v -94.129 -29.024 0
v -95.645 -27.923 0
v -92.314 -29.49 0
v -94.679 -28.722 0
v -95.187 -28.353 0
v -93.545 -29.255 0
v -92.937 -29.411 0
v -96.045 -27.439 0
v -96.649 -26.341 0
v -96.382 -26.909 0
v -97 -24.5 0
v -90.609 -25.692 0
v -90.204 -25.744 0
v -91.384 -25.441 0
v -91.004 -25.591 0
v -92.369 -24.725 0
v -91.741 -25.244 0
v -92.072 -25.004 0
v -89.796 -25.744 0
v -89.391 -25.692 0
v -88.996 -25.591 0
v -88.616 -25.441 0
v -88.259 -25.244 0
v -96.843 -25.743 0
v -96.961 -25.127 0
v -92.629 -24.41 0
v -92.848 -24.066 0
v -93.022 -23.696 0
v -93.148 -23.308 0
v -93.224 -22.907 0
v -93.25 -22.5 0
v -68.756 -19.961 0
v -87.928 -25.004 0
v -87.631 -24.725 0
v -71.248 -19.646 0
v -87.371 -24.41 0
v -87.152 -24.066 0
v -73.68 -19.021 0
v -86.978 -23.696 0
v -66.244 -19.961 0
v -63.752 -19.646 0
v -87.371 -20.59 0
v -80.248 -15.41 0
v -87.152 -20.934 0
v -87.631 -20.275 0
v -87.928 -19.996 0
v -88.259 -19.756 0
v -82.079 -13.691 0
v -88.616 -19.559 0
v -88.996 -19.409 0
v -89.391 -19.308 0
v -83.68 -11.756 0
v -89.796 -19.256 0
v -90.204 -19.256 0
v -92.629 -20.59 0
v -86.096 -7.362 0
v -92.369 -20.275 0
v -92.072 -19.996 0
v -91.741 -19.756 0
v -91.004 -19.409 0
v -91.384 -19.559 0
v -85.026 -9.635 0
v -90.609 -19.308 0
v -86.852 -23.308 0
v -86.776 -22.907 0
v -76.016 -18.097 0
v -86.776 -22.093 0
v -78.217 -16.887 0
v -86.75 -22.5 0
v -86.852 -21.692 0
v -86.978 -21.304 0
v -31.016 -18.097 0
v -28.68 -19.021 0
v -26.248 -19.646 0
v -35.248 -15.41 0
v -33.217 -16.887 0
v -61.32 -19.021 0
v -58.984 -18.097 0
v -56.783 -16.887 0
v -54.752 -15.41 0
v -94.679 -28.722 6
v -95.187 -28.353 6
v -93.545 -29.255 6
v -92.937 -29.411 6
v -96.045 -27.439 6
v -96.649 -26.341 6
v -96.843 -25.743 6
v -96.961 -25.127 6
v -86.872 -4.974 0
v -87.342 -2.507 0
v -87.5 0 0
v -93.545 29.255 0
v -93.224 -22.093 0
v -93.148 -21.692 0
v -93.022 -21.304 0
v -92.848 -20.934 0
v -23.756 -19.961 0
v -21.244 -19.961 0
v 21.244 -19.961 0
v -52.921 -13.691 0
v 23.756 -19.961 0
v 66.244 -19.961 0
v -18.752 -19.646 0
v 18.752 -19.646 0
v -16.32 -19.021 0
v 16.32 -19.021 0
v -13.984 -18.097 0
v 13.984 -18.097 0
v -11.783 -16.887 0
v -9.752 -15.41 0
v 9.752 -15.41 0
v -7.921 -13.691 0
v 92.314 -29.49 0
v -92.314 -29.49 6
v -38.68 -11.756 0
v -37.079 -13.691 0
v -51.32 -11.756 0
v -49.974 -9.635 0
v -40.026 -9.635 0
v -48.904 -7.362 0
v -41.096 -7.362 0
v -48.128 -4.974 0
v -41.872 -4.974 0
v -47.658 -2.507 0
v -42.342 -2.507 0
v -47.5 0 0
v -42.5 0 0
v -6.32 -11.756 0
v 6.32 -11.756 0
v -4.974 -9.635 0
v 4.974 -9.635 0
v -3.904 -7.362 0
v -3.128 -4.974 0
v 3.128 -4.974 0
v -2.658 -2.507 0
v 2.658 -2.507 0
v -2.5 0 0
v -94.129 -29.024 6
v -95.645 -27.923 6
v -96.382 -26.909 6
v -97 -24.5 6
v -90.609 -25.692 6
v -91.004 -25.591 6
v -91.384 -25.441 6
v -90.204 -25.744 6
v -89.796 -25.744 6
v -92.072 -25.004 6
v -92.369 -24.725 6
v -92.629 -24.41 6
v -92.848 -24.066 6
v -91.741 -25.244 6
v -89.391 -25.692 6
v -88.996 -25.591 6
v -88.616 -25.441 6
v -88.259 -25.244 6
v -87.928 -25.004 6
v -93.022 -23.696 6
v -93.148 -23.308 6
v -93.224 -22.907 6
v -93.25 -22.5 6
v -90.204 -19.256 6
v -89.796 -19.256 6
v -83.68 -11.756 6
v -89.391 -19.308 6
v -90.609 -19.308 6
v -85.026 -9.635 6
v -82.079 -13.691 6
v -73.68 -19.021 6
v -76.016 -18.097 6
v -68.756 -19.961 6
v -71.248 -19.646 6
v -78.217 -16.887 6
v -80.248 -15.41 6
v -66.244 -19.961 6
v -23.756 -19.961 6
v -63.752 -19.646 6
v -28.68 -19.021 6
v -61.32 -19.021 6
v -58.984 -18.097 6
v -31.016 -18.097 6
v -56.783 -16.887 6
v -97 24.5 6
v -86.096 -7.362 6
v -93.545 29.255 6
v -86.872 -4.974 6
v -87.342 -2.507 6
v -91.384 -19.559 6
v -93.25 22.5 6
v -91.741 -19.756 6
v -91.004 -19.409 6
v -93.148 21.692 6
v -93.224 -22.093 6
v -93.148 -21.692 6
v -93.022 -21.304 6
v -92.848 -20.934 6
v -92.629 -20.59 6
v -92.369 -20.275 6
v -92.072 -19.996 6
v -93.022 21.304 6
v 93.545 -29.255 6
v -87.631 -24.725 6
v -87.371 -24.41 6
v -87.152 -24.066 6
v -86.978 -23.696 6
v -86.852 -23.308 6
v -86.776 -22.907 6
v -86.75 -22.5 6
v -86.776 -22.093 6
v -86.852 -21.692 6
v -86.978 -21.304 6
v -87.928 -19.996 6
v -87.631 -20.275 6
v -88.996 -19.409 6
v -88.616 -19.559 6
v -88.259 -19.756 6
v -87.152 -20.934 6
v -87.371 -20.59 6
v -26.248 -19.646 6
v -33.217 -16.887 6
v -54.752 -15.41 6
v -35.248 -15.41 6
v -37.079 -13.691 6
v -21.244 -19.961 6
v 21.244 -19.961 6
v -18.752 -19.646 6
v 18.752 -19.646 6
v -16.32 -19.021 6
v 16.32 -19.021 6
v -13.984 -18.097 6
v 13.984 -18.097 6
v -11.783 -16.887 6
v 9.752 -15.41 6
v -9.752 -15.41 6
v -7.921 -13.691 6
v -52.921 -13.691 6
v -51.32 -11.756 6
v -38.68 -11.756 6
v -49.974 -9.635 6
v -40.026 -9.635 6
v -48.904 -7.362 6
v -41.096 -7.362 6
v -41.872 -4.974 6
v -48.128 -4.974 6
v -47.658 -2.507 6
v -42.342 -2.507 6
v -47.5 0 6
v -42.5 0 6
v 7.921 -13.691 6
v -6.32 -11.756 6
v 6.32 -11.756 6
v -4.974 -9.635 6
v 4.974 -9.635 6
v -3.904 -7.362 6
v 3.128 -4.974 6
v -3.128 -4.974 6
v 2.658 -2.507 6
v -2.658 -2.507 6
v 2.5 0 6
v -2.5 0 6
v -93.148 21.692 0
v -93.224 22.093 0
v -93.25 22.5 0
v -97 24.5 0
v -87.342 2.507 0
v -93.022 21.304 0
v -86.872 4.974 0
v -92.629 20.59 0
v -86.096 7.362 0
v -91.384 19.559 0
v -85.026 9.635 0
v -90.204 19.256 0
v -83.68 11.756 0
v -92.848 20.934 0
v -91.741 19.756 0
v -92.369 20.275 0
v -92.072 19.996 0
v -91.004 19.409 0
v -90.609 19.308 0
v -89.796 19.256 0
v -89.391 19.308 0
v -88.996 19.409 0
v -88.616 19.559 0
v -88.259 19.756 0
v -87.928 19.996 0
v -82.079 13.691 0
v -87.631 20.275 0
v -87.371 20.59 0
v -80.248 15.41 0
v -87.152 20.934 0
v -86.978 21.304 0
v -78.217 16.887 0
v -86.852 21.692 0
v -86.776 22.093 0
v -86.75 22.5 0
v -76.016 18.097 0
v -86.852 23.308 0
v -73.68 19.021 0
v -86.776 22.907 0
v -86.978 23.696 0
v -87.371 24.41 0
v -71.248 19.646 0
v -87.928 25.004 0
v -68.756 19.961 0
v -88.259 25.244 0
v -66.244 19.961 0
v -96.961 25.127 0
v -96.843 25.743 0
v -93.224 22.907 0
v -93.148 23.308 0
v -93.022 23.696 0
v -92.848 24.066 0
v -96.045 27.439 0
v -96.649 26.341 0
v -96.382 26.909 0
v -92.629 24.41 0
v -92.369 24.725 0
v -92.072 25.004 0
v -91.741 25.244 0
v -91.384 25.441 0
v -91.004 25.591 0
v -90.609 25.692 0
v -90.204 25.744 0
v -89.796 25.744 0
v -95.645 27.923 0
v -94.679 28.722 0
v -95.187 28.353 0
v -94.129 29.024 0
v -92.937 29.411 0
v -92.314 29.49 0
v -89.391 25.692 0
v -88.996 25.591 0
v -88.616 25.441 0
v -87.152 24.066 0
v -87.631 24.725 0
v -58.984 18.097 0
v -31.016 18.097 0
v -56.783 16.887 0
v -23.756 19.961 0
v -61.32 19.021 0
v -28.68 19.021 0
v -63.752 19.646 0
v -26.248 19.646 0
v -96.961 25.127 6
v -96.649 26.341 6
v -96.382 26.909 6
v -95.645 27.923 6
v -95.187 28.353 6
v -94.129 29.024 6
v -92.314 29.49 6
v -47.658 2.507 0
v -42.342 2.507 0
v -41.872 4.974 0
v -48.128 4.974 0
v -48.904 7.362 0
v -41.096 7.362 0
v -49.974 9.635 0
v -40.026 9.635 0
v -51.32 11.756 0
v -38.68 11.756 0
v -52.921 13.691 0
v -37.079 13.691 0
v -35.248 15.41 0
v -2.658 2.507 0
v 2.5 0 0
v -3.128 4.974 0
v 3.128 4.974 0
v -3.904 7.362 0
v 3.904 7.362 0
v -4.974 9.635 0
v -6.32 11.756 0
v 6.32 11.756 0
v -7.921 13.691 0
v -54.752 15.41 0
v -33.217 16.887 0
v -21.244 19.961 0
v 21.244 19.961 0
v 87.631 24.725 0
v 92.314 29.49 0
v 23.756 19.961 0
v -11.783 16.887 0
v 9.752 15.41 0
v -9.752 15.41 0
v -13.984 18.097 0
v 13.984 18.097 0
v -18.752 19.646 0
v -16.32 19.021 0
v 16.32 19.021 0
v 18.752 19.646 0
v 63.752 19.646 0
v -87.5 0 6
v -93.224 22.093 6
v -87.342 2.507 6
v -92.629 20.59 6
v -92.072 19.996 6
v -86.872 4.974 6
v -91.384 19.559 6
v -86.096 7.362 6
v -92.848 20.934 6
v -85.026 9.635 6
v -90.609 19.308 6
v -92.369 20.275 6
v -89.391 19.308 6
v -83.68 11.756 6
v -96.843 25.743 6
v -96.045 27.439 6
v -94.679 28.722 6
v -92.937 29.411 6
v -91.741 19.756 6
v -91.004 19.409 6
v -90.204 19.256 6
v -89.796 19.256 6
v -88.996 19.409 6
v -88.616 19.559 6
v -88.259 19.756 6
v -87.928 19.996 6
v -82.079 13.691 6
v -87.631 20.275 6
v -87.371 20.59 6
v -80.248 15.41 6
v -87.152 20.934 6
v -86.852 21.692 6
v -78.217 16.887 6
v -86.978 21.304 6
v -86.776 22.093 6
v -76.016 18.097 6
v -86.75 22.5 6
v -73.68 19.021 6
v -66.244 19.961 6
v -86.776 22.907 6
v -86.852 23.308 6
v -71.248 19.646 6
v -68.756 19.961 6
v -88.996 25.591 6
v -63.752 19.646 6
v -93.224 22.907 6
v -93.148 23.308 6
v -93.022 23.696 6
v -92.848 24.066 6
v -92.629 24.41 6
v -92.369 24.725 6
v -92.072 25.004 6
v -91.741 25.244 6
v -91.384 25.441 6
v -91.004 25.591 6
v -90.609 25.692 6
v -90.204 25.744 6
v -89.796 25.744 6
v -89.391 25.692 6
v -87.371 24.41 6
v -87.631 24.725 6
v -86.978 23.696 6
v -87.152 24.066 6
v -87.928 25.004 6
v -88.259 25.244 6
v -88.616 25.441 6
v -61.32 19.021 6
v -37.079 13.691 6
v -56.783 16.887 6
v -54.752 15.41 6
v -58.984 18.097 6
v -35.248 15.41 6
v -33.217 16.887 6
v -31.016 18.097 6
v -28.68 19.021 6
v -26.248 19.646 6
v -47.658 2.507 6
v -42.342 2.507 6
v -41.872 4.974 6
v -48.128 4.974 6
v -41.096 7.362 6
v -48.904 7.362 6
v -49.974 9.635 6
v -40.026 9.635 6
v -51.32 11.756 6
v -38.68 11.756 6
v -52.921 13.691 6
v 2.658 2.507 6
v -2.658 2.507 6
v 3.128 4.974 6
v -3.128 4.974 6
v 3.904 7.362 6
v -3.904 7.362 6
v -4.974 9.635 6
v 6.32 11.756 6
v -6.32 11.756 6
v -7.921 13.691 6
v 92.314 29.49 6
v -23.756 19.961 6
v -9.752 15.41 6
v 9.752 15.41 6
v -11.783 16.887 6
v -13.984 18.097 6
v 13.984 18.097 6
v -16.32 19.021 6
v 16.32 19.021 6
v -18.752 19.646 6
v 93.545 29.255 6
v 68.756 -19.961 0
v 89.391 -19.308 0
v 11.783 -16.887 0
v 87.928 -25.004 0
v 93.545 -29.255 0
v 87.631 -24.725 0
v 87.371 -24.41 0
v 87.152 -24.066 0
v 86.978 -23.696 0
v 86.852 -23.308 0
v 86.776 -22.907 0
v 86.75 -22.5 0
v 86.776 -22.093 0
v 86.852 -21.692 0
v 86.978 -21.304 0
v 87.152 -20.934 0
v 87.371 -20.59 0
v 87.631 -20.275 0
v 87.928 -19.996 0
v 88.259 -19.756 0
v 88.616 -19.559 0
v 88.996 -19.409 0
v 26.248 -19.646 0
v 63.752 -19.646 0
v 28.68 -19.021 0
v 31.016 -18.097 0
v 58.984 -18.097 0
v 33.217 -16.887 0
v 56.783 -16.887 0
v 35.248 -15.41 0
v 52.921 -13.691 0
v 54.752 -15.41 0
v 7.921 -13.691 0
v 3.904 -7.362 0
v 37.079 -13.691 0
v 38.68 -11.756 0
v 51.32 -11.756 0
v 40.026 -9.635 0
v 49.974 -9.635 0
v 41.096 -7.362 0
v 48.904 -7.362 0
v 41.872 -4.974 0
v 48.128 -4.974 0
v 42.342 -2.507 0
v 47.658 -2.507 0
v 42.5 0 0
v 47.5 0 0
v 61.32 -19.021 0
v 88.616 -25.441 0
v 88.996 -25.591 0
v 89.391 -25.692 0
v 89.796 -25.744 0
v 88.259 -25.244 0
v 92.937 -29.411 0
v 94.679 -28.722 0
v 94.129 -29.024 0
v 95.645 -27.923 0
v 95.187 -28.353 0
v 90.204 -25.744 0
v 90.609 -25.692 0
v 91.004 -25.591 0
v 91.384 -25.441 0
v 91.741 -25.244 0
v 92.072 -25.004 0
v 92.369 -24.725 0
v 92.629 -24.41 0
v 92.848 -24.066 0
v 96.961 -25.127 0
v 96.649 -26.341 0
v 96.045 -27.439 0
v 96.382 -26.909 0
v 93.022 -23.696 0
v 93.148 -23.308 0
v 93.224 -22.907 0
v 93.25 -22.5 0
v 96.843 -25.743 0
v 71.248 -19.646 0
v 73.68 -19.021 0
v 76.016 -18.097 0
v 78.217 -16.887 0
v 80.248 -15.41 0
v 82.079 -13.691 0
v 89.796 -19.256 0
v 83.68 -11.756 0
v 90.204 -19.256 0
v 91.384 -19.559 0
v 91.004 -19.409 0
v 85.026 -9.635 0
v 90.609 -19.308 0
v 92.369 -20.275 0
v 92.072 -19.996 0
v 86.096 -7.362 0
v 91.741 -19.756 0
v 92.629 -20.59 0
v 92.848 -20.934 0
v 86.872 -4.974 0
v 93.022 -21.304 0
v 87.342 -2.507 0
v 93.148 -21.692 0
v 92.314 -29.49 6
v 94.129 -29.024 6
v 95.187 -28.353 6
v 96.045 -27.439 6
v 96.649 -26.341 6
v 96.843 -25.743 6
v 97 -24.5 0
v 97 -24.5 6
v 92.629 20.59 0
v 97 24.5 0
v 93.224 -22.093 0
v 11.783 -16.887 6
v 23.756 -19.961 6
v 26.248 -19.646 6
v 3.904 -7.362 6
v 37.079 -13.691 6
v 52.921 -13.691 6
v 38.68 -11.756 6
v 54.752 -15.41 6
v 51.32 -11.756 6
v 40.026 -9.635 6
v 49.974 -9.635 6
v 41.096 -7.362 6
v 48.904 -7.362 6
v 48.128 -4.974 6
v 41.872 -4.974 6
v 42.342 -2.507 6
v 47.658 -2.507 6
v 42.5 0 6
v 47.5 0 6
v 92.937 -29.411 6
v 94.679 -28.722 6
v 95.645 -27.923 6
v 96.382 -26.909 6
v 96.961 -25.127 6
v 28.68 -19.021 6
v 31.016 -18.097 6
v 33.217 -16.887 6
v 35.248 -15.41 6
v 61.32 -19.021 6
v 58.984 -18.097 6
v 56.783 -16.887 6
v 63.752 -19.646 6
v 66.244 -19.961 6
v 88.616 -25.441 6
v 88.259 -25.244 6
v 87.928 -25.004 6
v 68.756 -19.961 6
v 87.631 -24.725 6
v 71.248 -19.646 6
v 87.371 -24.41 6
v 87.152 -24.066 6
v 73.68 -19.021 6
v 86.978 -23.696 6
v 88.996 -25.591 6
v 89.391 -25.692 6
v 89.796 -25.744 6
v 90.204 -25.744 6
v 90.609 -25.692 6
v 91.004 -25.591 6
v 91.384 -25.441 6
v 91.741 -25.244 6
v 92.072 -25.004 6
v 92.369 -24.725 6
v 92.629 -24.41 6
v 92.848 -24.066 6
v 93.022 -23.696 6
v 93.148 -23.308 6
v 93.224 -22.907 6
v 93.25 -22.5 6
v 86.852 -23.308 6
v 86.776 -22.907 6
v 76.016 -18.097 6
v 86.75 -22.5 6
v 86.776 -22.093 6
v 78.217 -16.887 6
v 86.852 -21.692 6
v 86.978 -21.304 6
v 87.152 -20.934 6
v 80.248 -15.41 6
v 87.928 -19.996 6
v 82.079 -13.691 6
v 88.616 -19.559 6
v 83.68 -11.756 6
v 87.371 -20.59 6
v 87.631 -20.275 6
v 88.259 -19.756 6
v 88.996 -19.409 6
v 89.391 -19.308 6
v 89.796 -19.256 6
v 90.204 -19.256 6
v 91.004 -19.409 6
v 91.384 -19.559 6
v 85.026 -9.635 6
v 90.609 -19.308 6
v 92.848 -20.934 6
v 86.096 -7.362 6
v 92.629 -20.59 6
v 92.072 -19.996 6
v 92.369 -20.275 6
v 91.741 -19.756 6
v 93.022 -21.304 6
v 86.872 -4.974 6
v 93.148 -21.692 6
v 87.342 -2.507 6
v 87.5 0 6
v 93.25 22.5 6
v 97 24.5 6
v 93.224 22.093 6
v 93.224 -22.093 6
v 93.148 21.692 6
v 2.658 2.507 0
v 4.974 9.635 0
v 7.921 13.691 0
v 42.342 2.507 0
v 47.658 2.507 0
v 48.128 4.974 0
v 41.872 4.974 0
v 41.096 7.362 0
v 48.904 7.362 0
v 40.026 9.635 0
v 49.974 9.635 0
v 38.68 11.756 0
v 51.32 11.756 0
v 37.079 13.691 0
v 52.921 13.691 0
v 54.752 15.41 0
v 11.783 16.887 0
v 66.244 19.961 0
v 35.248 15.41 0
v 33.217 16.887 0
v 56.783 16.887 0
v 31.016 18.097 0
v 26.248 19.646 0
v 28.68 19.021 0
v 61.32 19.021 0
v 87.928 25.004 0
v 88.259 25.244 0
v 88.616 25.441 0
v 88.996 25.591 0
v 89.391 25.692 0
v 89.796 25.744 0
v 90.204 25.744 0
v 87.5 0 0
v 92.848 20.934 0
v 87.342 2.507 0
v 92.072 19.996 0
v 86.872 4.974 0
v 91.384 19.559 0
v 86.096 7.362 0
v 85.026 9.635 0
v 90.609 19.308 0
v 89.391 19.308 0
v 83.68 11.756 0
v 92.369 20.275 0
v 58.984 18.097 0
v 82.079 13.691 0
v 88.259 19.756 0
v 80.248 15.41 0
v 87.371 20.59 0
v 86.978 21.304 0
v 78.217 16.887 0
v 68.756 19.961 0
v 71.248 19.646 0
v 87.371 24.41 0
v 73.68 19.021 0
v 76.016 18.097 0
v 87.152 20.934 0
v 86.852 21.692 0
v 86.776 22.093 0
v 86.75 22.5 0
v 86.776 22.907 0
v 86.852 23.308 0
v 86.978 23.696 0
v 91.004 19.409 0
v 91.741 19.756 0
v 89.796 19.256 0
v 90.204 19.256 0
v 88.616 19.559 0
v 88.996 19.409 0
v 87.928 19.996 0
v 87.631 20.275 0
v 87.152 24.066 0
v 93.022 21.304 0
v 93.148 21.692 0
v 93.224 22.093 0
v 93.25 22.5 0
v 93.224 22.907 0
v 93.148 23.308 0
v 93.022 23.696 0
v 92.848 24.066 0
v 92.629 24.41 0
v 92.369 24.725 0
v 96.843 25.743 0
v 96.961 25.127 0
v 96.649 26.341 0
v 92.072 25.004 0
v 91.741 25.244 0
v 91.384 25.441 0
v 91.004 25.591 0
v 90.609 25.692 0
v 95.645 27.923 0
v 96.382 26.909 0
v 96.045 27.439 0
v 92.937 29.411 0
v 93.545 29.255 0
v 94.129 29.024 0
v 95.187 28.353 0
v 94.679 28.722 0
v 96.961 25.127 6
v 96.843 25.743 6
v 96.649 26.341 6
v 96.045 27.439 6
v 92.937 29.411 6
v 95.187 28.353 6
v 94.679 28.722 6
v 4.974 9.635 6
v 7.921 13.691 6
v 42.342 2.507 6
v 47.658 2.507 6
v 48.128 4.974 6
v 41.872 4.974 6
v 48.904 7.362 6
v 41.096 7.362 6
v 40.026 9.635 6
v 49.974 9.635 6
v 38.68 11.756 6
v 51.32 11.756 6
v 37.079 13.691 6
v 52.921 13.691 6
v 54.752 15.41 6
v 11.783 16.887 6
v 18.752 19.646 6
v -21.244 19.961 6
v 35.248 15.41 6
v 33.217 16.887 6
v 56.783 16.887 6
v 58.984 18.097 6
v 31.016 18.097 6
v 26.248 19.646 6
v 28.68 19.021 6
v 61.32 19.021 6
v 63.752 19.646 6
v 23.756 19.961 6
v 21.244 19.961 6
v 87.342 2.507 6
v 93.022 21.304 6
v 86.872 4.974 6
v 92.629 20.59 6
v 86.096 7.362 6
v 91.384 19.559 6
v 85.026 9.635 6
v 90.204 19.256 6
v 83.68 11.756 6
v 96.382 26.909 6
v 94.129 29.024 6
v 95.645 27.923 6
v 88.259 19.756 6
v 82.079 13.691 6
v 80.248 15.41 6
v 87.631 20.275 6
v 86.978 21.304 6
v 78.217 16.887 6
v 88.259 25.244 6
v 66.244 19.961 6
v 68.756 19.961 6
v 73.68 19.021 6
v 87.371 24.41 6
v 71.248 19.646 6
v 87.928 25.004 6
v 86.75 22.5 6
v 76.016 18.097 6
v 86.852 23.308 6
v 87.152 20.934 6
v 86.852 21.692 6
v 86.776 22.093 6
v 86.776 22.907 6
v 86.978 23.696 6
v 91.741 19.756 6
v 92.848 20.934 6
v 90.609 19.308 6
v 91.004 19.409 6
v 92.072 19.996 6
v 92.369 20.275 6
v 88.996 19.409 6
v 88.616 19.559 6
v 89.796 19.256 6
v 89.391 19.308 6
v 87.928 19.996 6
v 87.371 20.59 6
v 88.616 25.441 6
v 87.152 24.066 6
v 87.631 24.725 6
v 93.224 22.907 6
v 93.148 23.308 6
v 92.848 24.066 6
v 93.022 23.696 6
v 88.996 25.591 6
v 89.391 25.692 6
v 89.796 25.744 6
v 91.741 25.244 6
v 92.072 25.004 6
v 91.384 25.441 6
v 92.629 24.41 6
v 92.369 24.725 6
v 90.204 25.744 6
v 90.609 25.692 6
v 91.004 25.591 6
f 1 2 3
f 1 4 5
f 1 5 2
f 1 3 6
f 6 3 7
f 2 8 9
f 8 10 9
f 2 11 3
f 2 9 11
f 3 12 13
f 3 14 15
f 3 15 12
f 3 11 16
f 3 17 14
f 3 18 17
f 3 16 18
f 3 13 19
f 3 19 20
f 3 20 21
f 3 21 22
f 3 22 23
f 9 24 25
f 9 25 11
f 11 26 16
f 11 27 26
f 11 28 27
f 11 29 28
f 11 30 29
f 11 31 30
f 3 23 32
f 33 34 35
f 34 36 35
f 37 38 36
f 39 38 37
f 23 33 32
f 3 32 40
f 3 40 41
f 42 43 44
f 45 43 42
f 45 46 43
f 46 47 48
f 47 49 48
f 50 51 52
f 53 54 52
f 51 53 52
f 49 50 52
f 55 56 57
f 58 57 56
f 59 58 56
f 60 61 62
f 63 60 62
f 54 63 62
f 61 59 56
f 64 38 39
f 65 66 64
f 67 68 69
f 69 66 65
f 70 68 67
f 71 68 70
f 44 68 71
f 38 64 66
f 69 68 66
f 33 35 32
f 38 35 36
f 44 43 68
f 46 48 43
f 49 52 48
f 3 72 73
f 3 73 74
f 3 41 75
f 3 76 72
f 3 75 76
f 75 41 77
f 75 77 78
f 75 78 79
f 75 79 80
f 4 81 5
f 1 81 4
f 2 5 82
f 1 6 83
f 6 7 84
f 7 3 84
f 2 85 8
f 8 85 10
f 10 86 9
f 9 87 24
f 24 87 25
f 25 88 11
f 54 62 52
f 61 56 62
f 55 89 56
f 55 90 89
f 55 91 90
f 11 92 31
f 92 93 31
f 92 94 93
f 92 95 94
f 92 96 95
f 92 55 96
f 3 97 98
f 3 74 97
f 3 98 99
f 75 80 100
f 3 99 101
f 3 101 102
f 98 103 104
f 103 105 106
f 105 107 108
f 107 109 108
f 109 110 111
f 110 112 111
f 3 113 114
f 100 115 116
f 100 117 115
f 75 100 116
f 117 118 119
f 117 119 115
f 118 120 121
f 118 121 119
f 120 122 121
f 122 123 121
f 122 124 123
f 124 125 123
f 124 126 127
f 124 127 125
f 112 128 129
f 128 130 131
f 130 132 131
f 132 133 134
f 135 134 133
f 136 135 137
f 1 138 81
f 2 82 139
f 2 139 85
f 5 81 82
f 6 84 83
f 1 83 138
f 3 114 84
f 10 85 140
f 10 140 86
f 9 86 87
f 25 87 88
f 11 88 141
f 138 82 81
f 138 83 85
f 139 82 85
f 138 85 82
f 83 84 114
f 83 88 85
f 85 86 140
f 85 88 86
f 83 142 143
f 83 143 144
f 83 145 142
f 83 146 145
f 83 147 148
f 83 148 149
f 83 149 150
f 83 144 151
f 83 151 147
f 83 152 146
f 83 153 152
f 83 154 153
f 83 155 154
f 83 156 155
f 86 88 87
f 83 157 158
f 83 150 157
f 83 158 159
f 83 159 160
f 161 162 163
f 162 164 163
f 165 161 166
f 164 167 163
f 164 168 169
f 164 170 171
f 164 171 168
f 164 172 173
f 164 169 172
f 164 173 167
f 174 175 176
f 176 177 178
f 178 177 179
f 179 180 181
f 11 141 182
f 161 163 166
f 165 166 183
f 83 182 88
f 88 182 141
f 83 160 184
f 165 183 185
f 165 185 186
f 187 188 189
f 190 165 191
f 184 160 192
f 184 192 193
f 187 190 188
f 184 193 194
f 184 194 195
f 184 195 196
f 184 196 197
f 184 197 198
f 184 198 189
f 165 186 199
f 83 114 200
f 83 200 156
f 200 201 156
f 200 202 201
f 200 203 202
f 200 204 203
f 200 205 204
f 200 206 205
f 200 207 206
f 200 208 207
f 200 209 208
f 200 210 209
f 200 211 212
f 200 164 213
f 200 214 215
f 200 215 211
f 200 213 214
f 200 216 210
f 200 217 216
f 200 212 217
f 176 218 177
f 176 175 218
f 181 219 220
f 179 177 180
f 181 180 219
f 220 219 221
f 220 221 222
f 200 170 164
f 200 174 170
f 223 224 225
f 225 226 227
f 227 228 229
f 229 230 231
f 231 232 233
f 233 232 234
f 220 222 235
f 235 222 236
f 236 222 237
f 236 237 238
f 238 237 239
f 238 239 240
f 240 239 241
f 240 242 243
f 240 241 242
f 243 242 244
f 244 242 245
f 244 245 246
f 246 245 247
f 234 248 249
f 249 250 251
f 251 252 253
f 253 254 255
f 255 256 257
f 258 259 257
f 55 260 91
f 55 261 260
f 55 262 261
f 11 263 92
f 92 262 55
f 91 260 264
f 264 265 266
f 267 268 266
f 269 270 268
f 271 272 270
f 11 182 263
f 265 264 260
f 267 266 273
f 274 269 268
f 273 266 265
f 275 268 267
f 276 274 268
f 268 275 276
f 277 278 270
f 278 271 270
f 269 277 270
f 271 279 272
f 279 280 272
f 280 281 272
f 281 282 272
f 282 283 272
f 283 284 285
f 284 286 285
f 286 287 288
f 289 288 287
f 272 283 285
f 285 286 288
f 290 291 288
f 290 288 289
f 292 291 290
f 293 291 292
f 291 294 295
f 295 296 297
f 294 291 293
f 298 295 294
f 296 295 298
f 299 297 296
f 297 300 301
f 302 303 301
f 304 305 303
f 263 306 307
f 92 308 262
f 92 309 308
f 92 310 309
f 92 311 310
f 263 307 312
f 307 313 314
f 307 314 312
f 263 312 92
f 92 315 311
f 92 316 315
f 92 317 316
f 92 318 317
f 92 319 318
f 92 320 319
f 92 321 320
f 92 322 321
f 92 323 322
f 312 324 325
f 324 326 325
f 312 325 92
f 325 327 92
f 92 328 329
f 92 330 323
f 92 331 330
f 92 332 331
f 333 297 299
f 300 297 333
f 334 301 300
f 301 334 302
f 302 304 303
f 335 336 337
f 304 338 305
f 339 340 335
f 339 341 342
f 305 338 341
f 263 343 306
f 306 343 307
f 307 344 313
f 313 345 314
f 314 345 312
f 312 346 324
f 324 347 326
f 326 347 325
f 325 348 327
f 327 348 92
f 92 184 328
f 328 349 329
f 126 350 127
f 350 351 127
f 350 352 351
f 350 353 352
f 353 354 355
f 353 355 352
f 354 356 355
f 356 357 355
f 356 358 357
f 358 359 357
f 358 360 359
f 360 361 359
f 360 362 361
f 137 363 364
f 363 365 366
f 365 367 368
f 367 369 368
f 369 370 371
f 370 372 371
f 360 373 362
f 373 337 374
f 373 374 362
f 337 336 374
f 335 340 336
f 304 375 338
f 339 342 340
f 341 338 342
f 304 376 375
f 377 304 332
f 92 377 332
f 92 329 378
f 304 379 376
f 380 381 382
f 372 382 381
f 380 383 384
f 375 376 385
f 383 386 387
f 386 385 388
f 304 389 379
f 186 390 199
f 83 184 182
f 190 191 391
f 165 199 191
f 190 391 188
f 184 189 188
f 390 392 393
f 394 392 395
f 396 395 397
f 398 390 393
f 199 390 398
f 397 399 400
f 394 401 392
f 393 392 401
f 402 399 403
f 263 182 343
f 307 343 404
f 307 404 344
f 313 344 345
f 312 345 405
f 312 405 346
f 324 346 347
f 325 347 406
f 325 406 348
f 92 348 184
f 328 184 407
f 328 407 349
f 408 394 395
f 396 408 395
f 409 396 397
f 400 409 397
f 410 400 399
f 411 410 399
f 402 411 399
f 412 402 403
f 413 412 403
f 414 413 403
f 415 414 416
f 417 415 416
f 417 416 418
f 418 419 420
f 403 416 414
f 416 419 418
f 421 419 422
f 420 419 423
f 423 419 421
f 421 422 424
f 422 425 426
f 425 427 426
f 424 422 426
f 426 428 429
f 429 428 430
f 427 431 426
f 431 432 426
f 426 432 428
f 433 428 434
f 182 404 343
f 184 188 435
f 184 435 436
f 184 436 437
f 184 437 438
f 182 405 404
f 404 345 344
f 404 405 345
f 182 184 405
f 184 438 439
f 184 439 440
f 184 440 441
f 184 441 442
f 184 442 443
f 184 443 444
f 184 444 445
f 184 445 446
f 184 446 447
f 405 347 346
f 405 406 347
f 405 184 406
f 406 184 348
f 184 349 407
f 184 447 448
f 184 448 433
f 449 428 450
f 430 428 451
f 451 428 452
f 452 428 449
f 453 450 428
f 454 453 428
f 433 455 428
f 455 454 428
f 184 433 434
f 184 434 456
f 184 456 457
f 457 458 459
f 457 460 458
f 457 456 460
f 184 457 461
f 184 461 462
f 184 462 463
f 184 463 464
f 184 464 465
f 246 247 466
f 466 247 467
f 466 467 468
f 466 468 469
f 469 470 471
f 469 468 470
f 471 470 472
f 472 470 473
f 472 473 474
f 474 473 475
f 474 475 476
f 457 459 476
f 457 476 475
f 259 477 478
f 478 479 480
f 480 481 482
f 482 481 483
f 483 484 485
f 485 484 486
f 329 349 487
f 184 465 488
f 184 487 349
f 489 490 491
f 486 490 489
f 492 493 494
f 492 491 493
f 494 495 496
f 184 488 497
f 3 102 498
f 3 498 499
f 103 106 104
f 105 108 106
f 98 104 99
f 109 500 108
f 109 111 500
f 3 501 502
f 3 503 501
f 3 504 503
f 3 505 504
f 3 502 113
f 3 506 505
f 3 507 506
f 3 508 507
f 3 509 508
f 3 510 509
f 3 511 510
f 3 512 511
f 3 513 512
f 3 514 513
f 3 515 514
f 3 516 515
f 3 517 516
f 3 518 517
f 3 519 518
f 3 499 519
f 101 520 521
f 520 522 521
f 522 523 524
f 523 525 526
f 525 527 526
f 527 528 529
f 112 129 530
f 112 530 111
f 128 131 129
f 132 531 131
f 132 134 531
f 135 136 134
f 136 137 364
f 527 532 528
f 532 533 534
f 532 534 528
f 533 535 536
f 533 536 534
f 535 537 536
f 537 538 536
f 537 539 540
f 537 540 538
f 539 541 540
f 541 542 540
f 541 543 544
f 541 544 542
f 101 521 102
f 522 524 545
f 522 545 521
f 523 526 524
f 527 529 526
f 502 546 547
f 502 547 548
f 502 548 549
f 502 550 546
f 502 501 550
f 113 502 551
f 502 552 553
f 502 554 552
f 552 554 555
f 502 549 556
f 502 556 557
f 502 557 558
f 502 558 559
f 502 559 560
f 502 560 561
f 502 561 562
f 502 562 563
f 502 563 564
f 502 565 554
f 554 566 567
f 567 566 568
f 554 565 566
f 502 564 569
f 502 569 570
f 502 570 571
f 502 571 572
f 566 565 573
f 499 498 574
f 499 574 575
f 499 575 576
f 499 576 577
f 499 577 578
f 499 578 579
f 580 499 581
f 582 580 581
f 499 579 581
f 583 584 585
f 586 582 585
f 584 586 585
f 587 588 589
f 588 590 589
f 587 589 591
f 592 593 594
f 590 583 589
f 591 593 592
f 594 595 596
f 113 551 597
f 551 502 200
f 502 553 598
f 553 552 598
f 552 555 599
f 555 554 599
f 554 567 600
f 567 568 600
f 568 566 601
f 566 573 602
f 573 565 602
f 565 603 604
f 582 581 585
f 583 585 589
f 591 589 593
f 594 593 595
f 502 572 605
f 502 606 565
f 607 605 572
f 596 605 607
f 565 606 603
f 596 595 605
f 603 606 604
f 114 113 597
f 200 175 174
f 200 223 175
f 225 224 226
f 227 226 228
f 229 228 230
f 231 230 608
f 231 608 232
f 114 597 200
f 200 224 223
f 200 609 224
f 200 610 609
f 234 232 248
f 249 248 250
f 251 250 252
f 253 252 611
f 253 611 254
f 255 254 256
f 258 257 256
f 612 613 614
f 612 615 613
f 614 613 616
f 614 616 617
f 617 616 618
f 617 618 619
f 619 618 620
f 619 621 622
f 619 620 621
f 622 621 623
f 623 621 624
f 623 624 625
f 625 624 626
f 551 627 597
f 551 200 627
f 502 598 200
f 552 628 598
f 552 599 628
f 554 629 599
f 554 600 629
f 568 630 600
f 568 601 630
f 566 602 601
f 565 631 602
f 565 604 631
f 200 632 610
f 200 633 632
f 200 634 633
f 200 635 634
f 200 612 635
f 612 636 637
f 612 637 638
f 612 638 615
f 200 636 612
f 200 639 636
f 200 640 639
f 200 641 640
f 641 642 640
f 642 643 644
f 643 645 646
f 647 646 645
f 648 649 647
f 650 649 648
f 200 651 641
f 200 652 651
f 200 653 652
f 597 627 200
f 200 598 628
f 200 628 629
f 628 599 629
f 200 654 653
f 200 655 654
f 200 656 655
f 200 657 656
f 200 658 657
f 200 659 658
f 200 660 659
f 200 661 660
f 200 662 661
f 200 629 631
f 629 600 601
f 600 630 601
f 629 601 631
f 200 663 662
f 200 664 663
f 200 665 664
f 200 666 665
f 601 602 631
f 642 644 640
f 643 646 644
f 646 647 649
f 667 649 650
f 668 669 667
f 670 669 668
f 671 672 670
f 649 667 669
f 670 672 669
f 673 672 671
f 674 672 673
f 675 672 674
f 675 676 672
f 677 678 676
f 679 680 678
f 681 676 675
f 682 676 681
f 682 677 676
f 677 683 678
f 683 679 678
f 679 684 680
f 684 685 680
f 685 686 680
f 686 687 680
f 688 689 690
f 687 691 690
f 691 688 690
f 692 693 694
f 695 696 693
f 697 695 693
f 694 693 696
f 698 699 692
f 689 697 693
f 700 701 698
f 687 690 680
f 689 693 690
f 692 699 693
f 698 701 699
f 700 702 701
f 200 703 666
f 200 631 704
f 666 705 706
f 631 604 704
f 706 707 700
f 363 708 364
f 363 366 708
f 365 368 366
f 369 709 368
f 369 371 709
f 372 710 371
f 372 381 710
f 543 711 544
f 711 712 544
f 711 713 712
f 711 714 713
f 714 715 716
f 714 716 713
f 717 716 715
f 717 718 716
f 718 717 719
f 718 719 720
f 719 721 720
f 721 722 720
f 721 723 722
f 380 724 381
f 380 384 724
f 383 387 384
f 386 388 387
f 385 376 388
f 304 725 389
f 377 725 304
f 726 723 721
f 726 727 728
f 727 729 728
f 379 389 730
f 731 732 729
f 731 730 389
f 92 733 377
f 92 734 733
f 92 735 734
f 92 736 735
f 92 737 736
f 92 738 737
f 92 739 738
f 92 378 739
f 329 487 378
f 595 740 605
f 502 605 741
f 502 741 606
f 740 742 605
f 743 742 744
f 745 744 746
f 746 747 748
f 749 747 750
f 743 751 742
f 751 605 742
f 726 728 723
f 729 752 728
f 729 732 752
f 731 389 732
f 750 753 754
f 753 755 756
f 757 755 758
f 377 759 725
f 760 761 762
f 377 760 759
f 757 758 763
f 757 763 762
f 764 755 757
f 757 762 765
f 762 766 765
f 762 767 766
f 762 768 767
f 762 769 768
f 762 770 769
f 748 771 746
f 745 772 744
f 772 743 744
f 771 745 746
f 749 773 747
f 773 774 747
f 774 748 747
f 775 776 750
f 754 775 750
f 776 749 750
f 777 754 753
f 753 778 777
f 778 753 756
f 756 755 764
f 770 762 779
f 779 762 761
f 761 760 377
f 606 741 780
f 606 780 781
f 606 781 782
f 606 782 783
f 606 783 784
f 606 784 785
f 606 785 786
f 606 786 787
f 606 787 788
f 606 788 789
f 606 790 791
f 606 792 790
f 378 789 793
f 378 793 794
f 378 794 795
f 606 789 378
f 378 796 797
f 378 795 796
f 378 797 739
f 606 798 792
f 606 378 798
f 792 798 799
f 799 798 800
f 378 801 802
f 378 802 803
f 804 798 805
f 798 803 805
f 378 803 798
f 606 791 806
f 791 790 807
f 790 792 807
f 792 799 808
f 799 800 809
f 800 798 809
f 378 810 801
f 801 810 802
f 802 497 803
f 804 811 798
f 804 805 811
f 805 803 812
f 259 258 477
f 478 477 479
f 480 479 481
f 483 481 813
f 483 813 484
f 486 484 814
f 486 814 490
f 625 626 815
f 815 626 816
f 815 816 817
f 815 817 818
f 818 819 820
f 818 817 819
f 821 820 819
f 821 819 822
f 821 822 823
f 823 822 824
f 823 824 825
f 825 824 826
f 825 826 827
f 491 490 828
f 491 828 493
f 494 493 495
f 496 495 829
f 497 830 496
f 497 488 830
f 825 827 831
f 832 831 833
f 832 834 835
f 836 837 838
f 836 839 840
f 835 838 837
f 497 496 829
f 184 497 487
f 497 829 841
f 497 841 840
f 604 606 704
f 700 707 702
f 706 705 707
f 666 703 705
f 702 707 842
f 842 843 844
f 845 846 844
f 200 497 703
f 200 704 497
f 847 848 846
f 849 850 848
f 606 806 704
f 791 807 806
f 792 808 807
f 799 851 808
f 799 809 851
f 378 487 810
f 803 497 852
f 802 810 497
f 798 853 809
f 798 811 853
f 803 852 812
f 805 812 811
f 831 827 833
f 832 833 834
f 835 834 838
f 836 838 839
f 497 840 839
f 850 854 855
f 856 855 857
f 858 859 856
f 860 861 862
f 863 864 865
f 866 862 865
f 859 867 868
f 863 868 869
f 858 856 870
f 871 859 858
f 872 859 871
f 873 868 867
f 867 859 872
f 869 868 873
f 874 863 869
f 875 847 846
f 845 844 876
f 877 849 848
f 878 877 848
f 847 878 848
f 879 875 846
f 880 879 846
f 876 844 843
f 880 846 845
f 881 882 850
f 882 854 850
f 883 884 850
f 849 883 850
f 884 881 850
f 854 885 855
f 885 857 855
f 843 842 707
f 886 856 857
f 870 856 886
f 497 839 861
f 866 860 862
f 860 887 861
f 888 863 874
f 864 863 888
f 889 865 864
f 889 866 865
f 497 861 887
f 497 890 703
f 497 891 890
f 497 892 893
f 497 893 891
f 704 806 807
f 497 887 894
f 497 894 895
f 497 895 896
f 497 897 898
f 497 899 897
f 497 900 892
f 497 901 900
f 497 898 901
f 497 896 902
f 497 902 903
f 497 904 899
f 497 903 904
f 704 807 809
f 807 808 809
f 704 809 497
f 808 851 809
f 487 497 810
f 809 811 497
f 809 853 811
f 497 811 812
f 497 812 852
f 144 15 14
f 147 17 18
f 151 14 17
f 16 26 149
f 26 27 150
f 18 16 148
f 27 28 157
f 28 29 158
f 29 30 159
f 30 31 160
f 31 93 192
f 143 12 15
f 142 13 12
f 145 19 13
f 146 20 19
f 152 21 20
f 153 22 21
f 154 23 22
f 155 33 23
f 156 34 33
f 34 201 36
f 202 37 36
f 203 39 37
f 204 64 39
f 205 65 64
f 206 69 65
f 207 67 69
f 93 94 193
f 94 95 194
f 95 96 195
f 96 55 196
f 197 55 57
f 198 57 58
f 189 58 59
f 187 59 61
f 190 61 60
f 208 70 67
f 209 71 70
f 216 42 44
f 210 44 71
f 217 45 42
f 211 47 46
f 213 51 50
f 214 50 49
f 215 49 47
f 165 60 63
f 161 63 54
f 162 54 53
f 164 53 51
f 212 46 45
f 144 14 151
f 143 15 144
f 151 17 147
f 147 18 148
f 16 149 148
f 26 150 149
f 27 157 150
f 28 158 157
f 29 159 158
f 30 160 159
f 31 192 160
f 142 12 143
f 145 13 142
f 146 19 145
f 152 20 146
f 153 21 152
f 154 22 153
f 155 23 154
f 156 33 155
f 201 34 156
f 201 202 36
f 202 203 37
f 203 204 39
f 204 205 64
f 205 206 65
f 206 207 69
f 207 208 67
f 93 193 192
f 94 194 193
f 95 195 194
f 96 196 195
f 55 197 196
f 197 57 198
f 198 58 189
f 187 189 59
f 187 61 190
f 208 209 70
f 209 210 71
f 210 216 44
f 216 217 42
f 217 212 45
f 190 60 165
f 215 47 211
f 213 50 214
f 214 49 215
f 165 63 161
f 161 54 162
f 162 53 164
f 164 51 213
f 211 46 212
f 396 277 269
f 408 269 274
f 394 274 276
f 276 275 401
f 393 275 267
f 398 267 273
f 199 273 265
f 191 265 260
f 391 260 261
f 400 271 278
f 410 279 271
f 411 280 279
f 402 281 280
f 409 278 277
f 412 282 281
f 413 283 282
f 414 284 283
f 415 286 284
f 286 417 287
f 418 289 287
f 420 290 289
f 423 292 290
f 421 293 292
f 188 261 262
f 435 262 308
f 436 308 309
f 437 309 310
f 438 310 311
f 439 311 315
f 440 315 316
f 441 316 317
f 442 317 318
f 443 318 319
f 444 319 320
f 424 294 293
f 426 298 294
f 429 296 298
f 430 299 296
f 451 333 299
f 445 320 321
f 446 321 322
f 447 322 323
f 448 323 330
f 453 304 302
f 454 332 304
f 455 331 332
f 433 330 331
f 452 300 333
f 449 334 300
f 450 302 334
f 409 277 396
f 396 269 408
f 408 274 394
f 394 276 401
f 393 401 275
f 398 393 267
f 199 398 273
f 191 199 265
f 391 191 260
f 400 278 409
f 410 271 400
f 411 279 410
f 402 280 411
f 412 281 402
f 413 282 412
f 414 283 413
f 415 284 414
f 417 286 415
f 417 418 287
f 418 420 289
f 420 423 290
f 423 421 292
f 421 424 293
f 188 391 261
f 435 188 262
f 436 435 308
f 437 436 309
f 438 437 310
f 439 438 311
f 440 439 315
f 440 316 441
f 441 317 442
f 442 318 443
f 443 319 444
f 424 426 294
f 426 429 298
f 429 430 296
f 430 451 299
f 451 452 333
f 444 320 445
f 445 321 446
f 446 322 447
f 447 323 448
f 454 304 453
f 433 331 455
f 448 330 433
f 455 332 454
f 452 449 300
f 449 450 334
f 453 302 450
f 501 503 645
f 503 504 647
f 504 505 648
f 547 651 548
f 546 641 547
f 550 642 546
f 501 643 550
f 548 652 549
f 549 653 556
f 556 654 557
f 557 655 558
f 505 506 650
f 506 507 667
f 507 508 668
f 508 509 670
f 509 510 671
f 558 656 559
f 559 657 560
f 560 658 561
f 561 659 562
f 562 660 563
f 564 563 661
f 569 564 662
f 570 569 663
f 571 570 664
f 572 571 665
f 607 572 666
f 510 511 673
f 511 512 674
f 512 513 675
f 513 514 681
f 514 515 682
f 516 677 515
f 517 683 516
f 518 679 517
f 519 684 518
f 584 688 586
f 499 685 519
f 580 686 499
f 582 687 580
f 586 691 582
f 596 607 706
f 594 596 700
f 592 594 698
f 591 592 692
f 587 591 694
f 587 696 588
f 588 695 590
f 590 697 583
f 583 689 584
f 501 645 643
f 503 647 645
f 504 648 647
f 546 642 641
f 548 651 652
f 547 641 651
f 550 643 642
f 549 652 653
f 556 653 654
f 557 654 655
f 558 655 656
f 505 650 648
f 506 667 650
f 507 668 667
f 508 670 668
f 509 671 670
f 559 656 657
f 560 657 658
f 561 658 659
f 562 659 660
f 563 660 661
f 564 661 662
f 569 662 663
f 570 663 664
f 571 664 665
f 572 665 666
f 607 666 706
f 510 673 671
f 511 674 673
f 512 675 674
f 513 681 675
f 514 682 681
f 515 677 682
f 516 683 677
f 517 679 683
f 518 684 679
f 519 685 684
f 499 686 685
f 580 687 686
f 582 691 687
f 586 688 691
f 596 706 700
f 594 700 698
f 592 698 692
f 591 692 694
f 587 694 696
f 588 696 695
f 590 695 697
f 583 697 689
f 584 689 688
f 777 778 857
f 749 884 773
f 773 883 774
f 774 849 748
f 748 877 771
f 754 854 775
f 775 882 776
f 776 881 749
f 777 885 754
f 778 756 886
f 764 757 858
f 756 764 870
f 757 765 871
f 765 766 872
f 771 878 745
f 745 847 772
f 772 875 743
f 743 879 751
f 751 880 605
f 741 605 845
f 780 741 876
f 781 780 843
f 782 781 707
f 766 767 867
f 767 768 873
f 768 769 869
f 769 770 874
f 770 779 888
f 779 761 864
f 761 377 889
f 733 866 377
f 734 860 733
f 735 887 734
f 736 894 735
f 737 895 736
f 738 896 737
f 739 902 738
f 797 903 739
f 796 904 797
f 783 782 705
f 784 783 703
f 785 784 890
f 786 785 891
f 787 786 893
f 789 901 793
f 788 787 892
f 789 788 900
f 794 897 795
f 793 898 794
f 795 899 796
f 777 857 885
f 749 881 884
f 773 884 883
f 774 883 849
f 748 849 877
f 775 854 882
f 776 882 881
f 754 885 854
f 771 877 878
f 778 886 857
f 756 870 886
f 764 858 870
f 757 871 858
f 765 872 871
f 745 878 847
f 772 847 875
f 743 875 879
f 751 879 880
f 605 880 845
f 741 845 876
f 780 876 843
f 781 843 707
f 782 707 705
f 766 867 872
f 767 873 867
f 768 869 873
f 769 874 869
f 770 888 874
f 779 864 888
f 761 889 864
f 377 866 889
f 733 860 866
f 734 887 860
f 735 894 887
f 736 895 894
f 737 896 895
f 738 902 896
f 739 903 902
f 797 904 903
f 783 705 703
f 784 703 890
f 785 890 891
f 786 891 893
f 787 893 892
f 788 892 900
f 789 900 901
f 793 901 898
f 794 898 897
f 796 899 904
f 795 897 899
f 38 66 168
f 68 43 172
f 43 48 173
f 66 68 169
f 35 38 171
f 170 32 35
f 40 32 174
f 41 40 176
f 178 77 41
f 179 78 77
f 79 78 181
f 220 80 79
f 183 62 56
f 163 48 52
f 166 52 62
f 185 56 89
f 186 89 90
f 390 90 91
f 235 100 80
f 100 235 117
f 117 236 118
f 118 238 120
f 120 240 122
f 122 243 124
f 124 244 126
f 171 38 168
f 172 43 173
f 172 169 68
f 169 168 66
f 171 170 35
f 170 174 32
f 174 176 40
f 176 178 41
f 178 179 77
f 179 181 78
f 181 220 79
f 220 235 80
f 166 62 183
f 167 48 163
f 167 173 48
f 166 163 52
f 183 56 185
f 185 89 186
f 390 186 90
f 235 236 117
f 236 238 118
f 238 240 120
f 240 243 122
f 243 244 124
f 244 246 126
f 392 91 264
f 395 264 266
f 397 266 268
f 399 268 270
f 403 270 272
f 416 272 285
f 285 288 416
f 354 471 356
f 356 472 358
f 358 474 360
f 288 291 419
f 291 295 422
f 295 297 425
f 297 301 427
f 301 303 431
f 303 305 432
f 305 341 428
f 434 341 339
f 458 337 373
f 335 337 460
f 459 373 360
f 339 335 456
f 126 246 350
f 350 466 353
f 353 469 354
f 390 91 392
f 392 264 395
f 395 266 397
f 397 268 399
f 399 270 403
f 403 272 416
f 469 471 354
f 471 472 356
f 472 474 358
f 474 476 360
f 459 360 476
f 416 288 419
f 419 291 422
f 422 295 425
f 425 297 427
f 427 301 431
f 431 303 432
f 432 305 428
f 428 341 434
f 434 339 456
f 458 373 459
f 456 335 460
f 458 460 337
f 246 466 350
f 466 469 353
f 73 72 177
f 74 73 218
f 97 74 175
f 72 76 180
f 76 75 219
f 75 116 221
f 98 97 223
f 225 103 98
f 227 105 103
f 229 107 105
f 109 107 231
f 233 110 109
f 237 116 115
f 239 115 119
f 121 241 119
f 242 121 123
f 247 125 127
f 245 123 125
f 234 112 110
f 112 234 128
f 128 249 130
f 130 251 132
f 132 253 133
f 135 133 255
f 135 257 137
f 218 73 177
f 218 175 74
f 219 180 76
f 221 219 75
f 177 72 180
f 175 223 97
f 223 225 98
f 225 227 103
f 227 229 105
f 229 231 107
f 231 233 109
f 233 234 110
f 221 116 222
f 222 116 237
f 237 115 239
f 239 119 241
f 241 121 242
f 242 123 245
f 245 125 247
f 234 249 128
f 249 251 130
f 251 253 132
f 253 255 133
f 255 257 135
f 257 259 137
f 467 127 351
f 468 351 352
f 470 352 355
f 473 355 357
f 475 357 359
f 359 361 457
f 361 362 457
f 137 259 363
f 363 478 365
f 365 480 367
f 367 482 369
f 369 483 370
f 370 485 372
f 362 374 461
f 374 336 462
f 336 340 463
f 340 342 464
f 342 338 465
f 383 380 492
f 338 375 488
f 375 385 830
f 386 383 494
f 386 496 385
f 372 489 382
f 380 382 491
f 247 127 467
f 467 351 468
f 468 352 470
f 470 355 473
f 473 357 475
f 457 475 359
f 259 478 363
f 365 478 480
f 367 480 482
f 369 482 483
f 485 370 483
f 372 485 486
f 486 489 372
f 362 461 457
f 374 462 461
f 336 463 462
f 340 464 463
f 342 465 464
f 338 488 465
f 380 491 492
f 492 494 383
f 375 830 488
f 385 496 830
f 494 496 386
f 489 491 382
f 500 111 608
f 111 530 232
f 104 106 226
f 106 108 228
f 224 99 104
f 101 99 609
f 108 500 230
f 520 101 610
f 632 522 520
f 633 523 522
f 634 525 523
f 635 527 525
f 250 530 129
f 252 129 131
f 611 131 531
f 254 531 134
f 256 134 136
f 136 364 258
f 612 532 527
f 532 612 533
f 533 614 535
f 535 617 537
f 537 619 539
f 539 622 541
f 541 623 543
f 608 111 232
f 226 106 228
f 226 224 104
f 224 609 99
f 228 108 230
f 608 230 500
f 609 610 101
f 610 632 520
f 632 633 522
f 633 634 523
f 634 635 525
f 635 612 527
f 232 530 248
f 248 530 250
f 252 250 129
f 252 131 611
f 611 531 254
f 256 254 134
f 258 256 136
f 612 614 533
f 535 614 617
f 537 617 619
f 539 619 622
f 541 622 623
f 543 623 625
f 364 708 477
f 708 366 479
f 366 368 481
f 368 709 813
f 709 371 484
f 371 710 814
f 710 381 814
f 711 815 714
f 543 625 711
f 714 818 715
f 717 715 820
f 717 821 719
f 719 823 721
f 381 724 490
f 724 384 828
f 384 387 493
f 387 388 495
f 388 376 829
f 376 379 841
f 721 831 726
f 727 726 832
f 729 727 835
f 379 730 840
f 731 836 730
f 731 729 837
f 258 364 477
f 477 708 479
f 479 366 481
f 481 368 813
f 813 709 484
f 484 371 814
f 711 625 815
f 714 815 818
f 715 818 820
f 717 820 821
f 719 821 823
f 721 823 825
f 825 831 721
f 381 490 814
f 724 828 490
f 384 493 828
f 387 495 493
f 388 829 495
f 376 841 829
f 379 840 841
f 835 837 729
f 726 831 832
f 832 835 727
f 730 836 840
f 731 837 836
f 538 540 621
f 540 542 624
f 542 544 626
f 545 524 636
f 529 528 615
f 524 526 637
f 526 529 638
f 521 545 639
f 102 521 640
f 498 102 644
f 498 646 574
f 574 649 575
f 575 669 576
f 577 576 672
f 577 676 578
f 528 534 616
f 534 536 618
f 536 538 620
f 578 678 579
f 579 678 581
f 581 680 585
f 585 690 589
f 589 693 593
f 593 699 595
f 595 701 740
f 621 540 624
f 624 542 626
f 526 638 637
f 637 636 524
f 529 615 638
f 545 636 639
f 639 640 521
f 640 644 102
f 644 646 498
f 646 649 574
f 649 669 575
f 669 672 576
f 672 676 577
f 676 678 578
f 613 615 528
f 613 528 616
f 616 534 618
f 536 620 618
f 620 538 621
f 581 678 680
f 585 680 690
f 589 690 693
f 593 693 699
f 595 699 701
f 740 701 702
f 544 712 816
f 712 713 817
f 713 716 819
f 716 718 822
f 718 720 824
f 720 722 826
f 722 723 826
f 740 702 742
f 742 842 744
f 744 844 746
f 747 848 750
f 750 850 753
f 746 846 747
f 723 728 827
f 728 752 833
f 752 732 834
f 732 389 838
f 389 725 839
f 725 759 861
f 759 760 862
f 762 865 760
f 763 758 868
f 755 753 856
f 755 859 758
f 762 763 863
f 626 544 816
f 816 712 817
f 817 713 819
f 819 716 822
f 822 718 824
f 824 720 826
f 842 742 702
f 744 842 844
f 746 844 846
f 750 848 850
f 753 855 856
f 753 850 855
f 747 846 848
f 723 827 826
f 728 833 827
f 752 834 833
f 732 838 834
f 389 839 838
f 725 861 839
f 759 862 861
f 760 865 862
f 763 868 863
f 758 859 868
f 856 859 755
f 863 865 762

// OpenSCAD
$fn = 50;

difference() {
	union() {
		hull() {
			translate(v = [-92.0, 24.5, 0]) {
				cylinder(h = 6, r = 5);
			}
			translate(v = [92.0, 24.5, 0]) {
				cylinder(h = 6, r = 5);
			}
			translate(v = [-92.0, -24.5, 0]) {
				cylinder(h = 6, r = 5);
			}
			translate(v = [92.0, -24.5, 0]) {
				cylinder(h = 6, r = 5);
			}
		}
	}
	union() {
		translate(v = [-90.0, -22.5, -100.0]) {
			cylinder(h = 200, r = 3.25);
		}
		translate(v = [-90.0, 22.5, -100.0]) {
			cylinder(h = 200, r = 3.25);
		}
		translate(v = [90.0, -22.5, -100.0]) {
			cylinder(h = 200, r = 3.25);
		}
		translate(v = [90.0, 22.5, -100.0]) {
			cylinder(h = 200, r = 3.25);
		}
		translate(v = [-90.0, -22.5, -100.0]) {
			cylinder(h = 200, r = 1.8);
		}
		translate(v = [-90.0, 22.5, -100.0]) {
			cylinder(h = 200, r = 1.8);
		}
		translate(v = [90.0, -22.5, -100.0]) {
			cylinder(h = 200, r = 1.8);
		}
		translate(v = [90.0, 22.5, -100.0]) {
			cylinder(h = 200, r = 1.8);
		}
		translate(v = [-67.5, 0, 0.0]) {
			cylinder(h = 6, r = 20.0);
		}
		translate(v = [-22.5, 0, 0.0]) {
			cylinder(h = 6, r = 20.0);
		}
		translate(v = [22.5, 0, 0.0]) {
			cylinder(h = 6, r = 20.0);
		}
		translate(v = [67.5, 0, 0.0]) {
			cylinder(h = 6, r = 20.0);
		}
	}
}
